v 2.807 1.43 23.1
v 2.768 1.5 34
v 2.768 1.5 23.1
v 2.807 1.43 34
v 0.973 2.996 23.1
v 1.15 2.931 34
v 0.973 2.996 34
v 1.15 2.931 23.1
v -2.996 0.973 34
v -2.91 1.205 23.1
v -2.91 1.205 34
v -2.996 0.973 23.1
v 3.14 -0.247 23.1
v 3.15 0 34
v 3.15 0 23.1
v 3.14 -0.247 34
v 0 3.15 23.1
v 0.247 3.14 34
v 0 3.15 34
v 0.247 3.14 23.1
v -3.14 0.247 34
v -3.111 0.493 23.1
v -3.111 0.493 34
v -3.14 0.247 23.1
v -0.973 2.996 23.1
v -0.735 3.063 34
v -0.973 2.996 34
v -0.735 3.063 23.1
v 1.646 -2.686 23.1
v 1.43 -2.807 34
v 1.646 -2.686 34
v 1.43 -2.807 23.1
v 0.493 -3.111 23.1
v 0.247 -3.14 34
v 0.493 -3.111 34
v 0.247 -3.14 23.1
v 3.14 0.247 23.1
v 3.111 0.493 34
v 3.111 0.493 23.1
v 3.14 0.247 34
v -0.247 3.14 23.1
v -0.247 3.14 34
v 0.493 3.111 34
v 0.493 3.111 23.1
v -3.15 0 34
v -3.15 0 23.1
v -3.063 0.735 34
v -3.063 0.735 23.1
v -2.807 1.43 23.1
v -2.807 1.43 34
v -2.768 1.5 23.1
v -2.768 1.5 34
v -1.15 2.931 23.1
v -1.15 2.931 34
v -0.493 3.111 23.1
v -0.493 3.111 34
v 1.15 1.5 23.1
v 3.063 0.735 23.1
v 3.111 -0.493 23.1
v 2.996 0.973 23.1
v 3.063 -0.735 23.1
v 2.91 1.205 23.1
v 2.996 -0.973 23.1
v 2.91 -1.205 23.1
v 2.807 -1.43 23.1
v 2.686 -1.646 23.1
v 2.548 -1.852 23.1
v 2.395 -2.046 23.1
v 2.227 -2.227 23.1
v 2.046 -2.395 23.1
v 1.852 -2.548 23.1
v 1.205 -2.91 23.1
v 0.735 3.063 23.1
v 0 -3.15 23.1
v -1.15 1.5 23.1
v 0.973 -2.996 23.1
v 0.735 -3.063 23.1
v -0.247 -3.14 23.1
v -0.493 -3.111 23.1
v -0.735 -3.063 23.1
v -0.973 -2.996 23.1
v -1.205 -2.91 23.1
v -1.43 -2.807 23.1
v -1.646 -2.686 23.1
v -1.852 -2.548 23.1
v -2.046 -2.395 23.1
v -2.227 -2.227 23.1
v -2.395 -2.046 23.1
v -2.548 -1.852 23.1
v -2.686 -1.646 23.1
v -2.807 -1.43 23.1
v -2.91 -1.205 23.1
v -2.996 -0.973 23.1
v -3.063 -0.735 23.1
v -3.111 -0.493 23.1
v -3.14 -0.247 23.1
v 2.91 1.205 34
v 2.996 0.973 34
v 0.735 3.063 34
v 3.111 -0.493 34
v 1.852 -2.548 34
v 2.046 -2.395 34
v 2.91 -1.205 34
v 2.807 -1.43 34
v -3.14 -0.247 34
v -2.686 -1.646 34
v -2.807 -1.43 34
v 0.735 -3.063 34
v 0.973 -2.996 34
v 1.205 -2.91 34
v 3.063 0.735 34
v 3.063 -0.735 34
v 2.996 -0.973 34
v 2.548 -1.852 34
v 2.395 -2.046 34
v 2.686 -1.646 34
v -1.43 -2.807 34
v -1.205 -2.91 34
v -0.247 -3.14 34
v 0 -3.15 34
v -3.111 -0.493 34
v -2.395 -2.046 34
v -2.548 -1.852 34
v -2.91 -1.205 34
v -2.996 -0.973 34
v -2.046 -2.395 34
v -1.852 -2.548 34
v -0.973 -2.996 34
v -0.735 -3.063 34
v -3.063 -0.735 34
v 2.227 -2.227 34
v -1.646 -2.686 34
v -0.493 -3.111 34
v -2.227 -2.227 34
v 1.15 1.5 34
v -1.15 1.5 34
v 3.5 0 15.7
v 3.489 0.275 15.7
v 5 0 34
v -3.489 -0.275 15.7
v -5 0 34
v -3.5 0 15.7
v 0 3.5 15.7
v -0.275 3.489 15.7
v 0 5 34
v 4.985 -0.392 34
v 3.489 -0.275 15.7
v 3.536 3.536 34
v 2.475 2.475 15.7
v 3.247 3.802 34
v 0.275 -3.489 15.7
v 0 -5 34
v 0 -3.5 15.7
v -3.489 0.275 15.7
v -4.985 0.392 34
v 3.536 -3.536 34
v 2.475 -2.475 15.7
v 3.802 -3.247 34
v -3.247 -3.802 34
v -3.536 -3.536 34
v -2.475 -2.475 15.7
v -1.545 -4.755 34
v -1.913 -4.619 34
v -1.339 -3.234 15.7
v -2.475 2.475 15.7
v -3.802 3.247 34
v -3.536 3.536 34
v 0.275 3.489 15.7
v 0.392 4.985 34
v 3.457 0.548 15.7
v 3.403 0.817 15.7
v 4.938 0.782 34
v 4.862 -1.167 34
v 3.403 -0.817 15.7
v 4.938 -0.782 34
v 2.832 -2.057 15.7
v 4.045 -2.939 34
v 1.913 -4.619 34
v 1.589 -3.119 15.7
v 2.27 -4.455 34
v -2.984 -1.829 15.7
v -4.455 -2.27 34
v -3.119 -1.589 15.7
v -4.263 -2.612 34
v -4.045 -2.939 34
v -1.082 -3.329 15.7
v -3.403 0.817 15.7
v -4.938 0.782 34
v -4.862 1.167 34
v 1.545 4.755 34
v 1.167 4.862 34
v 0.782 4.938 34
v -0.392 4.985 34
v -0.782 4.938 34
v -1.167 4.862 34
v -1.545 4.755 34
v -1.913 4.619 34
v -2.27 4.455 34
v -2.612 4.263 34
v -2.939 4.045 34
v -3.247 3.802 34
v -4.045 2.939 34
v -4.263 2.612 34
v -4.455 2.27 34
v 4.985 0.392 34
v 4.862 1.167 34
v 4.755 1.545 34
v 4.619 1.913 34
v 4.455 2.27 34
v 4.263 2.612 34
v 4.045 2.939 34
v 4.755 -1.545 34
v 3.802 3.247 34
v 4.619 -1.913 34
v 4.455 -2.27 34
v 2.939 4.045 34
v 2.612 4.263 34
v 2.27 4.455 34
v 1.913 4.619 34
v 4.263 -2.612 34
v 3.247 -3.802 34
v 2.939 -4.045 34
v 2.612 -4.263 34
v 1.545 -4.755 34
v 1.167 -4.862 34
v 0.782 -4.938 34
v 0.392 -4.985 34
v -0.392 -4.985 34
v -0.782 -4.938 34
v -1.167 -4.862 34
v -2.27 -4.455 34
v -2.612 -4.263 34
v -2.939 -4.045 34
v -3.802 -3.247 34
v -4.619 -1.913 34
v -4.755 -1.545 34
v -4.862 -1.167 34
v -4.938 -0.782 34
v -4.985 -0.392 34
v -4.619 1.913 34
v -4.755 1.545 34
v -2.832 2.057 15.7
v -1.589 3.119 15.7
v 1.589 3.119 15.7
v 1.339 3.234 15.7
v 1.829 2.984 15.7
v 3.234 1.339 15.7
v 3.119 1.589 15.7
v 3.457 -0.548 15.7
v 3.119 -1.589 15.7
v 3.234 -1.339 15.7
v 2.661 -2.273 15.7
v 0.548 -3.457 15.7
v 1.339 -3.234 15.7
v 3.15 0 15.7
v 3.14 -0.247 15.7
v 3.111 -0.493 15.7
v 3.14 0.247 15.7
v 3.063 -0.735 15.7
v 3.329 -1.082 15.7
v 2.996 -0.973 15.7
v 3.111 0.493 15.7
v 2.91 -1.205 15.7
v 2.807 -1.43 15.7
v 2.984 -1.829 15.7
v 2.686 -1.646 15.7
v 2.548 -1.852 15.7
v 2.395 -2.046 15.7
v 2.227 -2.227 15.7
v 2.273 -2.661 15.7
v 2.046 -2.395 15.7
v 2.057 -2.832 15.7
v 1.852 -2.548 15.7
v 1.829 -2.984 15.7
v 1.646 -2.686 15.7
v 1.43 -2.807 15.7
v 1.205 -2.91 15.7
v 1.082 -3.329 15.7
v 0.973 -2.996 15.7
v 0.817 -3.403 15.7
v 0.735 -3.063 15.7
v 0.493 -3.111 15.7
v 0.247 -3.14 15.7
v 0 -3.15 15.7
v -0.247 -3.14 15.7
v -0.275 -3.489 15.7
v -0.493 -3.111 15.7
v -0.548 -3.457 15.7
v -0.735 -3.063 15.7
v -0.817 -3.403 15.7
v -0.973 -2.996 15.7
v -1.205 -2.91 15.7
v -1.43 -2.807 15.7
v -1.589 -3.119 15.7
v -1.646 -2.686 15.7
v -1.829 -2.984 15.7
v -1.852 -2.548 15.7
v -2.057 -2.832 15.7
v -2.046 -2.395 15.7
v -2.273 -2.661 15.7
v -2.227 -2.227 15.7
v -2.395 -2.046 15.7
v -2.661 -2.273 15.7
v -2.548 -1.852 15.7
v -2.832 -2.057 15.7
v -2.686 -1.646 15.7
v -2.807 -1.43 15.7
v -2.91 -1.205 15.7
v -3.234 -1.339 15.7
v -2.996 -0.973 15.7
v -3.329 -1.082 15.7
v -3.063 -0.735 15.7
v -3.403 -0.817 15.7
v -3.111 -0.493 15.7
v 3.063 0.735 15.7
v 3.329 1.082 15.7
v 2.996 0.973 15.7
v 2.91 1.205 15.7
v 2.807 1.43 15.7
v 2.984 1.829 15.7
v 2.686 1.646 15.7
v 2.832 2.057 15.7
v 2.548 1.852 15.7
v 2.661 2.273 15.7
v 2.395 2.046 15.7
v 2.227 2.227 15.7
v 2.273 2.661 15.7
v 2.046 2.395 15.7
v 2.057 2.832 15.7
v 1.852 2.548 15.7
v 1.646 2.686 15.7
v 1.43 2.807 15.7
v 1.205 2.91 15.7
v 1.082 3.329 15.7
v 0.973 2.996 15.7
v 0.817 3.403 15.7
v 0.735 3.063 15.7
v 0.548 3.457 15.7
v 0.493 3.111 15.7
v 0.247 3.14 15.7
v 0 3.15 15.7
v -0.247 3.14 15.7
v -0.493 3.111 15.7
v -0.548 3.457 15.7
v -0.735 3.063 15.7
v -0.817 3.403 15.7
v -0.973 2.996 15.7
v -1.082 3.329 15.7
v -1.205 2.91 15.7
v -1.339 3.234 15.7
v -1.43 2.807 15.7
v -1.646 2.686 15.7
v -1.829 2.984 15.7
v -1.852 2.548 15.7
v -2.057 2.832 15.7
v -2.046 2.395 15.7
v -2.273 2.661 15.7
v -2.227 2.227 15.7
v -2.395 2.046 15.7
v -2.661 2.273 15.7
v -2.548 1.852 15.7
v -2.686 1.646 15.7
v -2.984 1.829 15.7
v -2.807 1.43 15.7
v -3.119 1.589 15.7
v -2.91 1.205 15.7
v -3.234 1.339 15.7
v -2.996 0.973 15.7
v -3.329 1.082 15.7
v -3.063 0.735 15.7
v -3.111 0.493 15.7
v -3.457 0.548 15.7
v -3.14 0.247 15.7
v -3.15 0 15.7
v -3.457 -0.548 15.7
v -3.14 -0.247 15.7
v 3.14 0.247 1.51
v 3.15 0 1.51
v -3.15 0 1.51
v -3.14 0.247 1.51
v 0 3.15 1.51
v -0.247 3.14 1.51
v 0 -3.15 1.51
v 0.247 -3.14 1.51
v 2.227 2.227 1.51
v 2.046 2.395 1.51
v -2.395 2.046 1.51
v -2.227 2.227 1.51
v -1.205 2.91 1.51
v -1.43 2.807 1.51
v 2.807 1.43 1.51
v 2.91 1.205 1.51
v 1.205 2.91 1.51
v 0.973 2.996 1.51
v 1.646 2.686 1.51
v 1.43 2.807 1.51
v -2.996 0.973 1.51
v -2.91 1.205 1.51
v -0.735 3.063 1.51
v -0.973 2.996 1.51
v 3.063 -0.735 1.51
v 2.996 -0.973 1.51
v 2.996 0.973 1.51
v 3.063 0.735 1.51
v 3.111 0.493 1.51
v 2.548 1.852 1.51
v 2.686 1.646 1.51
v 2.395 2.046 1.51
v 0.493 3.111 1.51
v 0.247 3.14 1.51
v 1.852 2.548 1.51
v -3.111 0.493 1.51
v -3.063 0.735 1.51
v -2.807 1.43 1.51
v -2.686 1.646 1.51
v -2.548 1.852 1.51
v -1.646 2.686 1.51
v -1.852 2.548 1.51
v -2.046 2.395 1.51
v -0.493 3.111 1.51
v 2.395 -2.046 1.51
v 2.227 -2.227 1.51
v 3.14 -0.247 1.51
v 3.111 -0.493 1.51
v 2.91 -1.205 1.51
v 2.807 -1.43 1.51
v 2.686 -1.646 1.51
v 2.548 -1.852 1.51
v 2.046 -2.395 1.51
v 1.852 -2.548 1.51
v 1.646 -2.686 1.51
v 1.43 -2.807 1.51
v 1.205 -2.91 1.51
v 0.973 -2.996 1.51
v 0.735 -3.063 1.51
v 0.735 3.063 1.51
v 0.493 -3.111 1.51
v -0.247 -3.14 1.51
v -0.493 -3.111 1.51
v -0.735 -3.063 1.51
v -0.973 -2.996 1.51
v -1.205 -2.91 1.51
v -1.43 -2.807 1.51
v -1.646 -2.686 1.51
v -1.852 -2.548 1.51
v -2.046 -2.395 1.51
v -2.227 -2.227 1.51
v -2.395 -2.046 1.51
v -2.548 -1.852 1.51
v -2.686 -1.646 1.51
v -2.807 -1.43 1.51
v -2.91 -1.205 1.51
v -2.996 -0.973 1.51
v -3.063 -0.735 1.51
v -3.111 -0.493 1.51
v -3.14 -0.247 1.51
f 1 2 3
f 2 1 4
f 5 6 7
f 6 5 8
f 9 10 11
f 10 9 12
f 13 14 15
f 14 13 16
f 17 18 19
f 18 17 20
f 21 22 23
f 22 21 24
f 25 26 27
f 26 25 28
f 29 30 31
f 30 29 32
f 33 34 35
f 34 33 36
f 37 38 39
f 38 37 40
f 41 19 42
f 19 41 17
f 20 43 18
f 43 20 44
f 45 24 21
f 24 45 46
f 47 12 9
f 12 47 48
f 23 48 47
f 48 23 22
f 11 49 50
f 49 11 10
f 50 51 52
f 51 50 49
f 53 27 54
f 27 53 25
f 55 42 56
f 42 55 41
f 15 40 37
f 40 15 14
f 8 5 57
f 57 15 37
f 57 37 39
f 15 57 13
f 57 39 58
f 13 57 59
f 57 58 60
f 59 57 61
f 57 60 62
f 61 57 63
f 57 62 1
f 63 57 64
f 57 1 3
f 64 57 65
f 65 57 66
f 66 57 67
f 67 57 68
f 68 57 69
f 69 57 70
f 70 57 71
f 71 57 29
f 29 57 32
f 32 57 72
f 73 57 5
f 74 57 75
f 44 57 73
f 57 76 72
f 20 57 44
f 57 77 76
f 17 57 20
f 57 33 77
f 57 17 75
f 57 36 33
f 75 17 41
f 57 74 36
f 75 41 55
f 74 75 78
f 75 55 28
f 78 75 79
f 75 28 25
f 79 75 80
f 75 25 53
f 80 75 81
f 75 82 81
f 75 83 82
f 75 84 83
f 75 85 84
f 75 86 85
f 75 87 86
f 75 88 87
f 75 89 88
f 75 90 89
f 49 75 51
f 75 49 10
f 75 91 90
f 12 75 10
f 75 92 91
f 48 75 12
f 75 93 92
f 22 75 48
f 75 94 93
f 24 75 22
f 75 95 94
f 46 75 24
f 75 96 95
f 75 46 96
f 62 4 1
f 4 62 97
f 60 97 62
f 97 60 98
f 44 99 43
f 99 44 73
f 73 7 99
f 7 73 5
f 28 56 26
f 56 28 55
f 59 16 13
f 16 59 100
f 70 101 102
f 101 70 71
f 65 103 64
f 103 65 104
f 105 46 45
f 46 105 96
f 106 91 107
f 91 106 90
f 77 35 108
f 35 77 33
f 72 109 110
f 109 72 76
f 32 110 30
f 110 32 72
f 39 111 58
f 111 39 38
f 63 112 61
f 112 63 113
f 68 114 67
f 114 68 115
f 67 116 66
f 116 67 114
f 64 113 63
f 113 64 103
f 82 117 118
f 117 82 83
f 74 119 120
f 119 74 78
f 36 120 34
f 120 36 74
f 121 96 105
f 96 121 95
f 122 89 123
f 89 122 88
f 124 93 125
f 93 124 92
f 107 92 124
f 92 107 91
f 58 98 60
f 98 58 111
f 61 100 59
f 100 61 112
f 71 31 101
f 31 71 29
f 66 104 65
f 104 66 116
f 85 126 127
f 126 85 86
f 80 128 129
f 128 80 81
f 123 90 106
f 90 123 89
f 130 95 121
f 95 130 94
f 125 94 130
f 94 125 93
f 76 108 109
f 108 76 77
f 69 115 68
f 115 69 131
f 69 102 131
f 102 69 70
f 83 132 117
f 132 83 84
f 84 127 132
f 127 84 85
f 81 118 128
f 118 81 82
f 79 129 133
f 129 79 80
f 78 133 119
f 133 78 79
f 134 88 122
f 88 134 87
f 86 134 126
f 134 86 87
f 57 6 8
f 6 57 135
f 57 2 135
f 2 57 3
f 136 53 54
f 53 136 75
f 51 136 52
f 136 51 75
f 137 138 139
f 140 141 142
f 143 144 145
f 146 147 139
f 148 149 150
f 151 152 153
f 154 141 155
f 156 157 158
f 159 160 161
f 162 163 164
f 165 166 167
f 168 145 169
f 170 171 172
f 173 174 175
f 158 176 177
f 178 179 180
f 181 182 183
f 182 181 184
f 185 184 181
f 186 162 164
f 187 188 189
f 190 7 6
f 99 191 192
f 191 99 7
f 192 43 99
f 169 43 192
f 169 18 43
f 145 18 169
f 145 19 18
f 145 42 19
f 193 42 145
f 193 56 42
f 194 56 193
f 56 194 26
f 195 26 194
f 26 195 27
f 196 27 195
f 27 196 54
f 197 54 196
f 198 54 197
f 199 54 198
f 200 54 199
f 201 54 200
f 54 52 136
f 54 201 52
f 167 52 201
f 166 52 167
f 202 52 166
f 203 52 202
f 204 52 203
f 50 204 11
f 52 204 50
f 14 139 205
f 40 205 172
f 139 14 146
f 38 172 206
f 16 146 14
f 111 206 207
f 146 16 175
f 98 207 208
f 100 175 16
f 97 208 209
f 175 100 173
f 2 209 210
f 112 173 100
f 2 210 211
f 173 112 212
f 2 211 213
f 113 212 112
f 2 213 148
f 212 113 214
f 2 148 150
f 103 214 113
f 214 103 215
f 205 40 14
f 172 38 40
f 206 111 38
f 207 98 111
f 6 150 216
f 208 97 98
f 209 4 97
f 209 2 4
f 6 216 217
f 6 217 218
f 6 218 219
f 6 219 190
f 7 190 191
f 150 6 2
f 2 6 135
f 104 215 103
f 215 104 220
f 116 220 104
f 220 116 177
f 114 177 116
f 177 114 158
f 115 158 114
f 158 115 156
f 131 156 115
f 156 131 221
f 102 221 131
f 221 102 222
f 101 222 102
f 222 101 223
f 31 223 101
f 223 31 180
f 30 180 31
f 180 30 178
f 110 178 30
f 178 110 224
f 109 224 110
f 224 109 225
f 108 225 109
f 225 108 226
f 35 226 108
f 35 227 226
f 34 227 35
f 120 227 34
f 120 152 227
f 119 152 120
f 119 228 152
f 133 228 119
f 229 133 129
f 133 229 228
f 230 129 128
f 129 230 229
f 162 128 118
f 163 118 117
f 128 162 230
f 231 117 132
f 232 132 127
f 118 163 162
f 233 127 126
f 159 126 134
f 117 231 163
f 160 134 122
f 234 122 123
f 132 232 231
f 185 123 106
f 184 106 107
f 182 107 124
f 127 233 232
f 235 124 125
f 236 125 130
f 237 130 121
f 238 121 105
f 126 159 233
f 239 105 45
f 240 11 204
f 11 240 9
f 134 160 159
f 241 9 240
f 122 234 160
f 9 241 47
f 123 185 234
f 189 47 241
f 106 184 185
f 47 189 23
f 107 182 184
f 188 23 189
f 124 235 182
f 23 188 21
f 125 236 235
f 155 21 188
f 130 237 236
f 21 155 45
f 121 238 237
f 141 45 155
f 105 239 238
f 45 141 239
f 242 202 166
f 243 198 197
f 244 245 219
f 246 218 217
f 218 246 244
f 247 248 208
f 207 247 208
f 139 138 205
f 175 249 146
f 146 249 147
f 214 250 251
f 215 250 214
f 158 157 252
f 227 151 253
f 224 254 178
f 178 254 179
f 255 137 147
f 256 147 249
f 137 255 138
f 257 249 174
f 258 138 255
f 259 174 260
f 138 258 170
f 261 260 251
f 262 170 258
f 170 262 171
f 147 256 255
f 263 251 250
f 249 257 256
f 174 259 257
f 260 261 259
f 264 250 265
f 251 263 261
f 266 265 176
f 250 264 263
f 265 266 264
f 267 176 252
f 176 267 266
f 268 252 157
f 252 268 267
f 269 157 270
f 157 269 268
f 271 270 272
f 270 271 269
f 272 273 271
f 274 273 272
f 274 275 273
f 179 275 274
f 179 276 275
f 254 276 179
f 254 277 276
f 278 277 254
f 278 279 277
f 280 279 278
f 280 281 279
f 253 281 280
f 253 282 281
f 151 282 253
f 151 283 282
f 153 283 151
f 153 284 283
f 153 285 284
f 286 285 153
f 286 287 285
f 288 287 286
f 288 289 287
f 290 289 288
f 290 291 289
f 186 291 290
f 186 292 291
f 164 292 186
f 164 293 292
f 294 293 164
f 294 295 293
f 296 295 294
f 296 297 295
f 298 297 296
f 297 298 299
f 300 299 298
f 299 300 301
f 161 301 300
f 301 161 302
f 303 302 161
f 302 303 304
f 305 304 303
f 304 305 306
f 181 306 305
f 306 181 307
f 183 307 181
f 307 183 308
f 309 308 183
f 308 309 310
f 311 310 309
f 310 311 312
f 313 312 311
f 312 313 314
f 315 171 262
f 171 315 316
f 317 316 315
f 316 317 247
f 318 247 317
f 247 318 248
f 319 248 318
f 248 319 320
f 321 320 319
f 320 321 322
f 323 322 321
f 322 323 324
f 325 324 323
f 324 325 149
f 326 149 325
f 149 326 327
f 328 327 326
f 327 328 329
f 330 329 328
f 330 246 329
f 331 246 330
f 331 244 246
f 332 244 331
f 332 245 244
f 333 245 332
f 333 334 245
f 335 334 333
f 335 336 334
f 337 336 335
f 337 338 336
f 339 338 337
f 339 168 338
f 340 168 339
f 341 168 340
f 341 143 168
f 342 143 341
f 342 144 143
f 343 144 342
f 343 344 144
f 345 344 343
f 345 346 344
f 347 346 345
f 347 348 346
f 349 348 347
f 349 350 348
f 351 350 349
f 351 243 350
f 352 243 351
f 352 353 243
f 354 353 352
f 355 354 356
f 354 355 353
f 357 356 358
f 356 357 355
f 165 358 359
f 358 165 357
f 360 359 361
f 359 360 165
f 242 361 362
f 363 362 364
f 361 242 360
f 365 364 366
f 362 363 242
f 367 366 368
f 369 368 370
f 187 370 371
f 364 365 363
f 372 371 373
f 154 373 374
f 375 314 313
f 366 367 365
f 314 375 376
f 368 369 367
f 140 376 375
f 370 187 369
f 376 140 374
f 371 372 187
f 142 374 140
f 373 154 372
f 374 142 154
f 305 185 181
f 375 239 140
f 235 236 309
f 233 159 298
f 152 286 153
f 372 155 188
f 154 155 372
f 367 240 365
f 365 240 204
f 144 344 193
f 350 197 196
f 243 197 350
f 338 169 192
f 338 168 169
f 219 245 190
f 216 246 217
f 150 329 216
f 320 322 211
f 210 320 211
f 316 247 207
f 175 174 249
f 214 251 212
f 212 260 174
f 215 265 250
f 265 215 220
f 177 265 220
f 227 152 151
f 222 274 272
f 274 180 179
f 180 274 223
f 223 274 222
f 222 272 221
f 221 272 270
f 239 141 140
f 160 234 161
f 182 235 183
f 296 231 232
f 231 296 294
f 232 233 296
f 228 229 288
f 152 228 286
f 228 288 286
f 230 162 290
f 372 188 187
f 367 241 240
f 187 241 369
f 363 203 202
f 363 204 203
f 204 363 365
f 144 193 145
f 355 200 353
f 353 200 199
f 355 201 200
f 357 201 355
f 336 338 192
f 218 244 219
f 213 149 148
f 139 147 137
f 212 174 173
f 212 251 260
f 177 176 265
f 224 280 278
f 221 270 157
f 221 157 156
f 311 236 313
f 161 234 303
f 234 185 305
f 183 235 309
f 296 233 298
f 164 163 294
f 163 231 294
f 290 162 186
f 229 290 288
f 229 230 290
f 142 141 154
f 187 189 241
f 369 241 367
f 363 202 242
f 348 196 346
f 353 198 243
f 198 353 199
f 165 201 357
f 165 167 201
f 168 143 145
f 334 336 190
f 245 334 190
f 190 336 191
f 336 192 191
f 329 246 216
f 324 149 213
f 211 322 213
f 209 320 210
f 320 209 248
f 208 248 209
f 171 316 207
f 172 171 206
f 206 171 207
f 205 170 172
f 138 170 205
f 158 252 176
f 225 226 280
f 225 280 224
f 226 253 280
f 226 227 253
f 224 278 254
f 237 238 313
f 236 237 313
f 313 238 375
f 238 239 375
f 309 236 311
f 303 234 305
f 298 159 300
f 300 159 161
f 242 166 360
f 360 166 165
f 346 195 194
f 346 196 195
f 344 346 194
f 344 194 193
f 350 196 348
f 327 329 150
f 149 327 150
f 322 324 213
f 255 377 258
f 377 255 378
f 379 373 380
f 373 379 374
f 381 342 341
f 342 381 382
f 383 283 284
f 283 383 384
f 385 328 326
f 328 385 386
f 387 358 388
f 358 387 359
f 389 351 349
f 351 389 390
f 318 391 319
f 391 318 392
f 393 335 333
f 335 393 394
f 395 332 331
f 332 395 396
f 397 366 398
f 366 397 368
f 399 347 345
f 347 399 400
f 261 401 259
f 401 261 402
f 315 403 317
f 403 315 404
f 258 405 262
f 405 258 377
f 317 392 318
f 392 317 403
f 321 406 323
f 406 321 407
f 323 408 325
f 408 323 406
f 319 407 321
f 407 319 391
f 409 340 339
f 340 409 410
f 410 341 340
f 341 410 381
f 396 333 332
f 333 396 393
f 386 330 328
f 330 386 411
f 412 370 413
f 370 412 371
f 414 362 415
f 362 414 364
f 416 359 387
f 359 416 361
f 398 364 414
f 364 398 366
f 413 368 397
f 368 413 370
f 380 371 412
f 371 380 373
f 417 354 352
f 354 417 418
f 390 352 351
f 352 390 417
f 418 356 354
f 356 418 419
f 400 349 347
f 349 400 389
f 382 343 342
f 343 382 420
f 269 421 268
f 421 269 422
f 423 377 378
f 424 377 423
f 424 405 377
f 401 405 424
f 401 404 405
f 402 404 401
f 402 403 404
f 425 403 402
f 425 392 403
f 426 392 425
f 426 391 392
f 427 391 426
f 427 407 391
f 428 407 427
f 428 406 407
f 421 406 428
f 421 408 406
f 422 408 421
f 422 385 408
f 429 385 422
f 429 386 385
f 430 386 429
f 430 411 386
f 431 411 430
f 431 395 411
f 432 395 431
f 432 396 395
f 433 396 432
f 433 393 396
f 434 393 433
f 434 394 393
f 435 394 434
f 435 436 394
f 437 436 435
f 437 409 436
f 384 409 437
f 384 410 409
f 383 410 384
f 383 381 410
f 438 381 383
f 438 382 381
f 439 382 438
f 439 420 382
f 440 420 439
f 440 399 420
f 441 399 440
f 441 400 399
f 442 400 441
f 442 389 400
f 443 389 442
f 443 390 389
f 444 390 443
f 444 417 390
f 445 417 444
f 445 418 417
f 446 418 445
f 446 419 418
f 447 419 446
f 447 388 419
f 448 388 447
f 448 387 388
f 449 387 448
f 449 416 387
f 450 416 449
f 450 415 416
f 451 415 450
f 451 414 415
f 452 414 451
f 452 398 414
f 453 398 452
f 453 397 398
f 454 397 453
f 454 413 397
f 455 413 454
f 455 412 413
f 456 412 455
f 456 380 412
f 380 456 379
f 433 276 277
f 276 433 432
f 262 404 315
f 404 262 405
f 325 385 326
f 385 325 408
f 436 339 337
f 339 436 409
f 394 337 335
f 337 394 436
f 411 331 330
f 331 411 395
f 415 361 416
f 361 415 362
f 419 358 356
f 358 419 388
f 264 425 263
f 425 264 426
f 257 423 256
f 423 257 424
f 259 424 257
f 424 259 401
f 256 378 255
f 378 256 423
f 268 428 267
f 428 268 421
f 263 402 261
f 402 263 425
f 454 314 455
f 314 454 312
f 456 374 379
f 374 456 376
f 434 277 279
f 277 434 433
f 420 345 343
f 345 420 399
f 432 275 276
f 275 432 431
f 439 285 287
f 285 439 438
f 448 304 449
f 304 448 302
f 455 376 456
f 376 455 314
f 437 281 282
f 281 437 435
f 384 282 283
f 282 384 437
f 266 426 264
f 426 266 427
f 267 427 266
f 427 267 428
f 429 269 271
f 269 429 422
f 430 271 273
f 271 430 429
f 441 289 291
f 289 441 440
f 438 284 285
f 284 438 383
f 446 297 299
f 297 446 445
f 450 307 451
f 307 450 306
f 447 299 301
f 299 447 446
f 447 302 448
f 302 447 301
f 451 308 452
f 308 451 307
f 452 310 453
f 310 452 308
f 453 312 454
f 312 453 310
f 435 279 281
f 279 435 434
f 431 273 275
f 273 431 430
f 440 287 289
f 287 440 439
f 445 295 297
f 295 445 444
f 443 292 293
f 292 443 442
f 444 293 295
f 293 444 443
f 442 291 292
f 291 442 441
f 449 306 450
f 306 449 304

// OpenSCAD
$fn = 80;
translate([0,0,1.51])
cylinder(h=14.2,d=6.3);
difference() {
// cylinder outer dimension
translate([0,0,15.7])
cylinder(h=18.3, d1=7, d2=10);

// center cutout
translate([0,0,23.1])
difference() {
cylinder(h=11, d=6.3);

translate([1.15,1.5,0])
    cube([4,4,11.1]);
    
translate([-5.15,1.5,0])
    cube([4,4,11.1]);
}

}
